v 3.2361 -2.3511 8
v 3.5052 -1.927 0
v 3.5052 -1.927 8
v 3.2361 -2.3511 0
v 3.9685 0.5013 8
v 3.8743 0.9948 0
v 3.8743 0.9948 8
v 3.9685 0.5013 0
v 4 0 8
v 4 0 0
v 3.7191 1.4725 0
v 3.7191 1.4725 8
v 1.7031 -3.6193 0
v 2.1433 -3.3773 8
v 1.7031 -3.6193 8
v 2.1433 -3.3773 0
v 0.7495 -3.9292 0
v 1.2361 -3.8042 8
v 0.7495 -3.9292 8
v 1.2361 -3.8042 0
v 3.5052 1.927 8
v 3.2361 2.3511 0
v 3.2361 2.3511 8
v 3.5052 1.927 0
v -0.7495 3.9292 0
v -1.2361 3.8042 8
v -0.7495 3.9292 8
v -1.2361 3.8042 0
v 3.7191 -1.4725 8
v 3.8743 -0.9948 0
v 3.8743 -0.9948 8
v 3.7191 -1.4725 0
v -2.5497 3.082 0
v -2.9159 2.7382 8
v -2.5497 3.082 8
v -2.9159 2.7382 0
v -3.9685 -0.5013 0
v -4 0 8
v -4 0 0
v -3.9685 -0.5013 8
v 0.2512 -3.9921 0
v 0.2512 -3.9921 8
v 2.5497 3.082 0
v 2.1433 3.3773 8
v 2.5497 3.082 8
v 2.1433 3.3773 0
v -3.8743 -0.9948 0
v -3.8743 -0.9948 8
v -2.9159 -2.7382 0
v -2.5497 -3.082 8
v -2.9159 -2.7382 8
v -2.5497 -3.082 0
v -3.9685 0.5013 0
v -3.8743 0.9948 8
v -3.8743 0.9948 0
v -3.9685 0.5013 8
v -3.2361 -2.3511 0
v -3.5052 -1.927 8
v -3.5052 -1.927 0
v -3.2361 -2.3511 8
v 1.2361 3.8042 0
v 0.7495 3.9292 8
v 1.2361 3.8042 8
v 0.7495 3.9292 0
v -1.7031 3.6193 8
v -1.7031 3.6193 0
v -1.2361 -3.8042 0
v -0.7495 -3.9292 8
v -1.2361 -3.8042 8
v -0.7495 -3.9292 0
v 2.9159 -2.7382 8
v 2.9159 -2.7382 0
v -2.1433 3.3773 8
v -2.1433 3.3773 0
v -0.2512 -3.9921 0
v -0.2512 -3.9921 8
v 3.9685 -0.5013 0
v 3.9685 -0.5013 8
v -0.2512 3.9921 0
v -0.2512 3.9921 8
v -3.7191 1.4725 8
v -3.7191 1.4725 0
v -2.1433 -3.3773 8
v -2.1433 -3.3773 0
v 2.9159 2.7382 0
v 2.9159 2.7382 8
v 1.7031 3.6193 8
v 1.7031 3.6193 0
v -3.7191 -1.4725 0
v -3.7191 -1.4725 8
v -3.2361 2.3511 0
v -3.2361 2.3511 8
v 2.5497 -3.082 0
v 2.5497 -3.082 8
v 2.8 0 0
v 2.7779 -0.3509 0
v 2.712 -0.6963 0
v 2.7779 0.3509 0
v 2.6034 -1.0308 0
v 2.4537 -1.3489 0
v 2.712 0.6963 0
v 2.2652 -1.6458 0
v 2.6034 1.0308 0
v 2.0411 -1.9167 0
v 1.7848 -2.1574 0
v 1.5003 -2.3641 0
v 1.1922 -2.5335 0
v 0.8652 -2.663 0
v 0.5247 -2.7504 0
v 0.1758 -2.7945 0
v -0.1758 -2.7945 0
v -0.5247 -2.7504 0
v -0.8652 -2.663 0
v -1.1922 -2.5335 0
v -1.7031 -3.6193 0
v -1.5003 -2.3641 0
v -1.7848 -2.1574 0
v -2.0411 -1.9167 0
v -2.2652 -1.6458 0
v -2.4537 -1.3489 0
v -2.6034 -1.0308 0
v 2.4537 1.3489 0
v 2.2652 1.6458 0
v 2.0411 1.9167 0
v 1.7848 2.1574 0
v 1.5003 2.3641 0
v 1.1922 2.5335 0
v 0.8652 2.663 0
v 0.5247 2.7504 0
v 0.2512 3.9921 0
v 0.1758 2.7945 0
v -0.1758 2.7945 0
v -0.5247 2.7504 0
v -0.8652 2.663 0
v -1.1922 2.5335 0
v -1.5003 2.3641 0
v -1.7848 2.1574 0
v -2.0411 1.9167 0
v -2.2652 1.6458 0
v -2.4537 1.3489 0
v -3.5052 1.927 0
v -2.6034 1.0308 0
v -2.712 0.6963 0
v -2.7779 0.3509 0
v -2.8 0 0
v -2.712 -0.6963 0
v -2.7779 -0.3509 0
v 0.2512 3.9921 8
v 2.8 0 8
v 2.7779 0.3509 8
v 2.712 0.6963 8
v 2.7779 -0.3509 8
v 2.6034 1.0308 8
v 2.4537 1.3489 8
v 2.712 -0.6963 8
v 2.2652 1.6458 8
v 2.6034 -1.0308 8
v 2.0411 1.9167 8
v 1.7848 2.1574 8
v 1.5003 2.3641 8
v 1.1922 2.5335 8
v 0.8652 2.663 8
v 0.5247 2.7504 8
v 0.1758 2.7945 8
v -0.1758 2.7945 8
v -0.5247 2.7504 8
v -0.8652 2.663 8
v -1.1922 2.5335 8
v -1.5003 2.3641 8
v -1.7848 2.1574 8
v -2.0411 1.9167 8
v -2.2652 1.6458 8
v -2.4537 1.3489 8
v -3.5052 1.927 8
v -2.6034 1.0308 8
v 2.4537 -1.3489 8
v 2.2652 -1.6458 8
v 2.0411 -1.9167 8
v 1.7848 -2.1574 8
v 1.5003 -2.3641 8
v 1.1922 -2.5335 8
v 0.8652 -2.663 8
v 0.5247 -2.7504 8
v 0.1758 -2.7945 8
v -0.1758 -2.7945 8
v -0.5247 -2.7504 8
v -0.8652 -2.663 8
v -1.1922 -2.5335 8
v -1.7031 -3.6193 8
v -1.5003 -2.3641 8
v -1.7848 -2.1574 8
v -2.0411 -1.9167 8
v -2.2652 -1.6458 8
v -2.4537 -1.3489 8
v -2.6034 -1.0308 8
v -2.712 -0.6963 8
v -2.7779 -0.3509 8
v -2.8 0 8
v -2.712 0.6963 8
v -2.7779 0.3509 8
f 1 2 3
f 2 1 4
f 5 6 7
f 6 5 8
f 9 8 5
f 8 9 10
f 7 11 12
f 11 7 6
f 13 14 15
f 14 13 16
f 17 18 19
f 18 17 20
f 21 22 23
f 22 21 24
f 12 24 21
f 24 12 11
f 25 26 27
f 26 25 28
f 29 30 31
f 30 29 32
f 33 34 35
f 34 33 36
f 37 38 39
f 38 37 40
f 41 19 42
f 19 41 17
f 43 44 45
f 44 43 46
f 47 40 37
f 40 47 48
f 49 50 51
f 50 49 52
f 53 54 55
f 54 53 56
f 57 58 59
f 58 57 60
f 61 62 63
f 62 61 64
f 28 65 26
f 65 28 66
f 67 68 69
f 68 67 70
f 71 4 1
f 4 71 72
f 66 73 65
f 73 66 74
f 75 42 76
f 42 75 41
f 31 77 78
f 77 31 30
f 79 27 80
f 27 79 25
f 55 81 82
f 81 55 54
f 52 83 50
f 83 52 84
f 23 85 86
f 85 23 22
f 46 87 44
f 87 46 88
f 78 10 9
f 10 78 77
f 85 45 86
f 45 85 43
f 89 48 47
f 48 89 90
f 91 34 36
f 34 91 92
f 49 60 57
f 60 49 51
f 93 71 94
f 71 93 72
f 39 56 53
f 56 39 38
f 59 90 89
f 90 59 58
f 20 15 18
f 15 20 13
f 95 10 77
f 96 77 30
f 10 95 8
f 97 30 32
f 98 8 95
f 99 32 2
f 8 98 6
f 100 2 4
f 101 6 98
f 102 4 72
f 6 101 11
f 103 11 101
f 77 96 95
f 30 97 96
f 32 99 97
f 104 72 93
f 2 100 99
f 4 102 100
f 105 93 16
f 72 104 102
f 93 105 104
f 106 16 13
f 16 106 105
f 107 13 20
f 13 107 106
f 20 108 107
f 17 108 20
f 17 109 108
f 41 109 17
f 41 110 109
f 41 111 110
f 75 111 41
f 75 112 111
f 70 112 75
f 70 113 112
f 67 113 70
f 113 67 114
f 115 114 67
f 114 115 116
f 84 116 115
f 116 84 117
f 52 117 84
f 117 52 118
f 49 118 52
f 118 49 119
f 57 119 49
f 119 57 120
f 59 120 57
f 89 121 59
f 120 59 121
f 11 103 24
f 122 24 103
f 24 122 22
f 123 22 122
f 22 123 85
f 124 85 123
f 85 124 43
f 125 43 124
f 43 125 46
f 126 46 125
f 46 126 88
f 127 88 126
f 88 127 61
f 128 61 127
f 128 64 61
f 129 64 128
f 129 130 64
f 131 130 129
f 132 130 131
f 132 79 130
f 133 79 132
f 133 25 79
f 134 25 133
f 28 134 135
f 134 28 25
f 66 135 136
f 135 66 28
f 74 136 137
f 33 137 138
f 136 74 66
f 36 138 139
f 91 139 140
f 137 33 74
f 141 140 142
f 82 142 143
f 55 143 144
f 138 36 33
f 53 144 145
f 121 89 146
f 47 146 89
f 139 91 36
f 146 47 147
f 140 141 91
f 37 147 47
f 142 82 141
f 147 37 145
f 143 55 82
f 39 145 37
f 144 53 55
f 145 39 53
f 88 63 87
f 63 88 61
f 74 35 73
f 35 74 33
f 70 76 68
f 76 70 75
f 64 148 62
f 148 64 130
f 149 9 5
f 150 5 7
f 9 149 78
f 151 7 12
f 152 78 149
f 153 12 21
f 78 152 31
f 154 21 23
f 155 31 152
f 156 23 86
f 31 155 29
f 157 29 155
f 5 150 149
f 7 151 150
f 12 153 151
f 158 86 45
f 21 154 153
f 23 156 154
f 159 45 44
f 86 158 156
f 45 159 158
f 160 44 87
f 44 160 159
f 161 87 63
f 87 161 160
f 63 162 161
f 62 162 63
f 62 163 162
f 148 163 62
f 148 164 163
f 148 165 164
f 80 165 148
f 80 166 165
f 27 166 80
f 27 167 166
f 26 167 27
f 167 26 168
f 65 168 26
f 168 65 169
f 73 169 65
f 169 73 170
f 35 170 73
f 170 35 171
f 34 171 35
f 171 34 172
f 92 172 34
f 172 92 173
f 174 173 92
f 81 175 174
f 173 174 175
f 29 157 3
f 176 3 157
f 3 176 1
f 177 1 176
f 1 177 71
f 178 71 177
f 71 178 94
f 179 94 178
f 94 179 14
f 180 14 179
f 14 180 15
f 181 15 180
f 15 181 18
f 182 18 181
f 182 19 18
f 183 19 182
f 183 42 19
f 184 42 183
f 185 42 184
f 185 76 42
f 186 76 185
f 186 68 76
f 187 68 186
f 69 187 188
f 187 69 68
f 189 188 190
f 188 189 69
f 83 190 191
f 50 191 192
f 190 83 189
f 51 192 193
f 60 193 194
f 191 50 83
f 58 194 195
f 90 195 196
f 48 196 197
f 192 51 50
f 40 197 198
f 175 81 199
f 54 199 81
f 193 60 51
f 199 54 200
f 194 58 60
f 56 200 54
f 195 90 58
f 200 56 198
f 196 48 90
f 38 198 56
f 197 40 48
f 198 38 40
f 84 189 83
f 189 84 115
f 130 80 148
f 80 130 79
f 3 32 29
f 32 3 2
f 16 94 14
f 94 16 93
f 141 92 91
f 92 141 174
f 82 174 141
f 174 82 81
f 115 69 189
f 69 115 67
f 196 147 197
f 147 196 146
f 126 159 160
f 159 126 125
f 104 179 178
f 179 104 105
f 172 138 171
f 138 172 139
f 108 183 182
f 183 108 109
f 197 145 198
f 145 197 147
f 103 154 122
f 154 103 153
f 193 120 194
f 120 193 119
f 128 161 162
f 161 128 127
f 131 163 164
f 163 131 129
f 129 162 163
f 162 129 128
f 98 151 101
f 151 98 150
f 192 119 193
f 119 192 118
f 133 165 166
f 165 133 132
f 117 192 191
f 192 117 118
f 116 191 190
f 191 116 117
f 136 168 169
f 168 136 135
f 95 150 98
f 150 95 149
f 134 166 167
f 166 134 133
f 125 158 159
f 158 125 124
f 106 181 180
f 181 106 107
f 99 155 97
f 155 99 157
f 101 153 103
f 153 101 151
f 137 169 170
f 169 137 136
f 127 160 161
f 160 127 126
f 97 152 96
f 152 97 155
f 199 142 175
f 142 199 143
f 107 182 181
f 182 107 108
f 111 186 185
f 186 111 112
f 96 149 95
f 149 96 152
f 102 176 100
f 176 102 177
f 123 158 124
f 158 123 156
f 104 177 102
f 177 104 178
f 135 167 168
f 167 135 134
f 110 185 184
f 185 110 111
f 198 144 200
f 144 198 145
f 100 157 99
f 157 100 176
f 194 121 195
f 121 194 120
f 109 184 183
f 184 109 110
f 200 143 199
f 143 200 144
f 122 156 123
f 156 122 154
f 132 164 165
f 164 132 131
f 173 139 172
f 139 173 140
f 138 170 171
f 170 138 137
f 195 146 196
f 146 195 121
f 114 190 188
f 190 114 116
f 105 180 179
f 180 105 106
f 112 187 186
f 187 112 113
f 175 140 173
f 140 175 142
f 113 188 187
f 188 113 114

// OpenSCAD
height = 8;
inner_cyl_dia 	= 5;
outer_cyl_dia	= 8;

anti_warp = .12;

$fn = $preview ? 25 : 50;

difference() {
	cylinder(height, d = outer_cyl_dia);
	cylinder(height, d = inner_cyl_dia * (1 + anti_warp));
}
